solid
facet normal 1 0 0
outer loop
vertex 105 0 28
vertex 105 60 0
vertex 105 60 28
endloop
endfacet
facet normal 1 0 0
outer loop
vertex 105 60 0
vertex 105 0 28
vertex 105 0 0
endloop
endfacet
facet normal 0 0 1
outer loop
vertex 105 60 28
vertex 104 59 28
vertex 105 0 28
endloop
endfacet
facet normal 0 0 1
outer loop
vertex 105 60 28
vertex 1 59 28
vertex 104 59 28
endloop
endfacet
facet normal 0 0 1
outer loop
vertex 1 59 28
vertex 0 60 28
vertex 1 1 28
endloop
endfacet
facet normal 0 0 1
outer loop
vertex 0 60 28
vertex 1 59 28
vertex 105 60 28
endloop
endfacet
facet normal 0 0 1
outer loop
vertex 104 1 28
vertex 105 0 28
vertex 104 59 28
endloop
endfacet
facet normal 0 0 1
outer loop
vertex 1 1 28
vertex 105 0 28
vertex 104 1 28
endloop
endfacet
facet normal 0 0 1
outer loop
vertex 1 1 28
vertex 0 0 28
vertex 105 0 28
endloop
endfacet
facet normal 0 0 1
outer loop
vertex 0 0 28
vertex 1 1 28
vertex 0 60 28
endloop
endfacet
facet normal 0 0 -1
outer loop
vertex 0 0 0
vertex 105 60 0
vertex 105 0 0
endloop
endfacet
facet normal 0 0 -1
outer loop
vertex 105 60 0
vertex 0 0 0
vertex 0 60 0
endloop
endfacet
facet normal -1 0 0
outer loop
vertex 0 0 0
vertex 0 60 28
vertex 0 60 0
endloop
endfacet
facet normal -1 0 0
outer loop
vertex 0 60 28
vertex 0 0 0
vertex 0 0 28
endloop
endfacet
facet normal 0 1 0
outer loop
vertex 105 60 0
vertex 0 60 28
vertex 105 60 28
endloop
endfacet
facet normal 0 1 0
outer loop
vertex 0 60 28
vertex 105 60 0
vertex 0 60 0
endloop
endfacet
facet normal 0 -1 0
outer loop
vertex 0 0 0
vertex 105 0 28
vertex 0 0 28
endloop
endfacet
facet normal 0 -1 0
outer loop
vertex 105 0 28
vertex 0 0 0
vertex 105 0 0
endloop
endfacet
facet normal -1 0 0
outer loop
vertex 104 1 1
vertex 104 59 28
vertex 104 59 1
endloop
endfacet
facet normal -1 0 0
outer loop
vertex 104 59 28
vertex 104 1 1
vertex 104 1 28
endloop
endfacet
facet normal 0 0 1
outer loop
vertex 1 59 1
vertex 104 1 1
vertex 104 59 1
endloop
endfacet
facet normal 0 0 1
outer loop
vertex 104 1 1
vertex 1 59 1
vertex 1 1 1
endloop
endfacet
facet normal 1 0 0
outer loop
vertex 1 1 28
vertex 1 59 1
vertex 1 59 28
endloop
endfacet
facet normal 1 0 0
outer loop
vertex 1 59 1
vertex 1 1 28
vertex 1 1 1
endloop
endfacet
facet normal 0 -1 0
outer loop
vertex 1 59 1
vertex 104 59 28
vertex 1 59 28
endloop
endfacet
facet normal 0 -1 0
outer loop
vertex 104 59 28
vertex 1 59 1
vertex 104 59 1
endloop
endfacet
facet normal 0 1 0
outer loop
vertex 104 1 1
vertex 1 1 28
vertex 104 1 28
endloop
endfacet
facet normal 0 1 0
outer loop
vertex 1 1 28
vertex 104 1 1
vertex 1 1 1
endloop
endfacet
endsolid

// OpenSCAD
include <boardgame_insert_toolkit_lib.2.scad>;

// determines whether lids are output.
g_b_print_lid = true;

// determines whether boxes are output.
g_b_print_box = true; 

// Focus on one box
g_isolated_print_box = ""; 

// Used to visualize how all of the boxes fit together. 
g_b_visualization = false;          
        
// this is the outer wall thickness. 
//Default = 1.5mm
g_wall_thickness = 1.0;

// The tolerance value is extra space put between planes of the lid and box that fit together.
// Increase the tolerance to loosen the fit and decrease it to tighten it.
//
// Note that the tolerance is applied exclusively to the lid.
// So if the lid is too tight or too loose, change this value ( up for looser fit, down for tighter fit ) and 
// you only need to reprint the lid.
// 
// The exception is the stackable box, where the bottom of the box is the lid of the box below,
// in which case the tolerance also affects that box bottom.
//
g_tolerance = 0.15;

// This adjusts the position of the lid detents downward. 
// The larger the value, the bigger the gap between the lid and the box.
g_tolerance_detents_pos = 0.1;

aw_size_x = 105.0;
aw_size_y = 60.0;
aw_size_z = 28.0;


data =
  [
    [
      "simple box",
      [
        [ BOX_SIZE_XYZ, [aw_size_x, aw_size_y, aw_size_z] ],
        [ BOX_NO_LID_B, t],
        [
          BOX_COMPONENT,
          [
            [
              CMP_COMPARTMENT_SIZE_XYZ,
              [
                (aw_size_x - 2.0),
                (aw_size_y - 2.0),
                aw_size_z - g_wall_thickness
              ]
            ],
            [ CMP_NUM_COMPARTMENTS_XY, [1, 1] ],
            //[ CMP_FILLET_RADIUS, 5.0 ],
            [ POSITION_XY, [0, 0] ],
            [ CMP_CUTOUT_SIDES_4B,   [f,f,f,f]],
            //[ CMP_CUTOUT_DEPTH_PCT,  20],
            //[ CMP_CUTOUT_WIDTH_PCT,  50],
            //[ CMP_CUTOUT_HEIGHT_PCT, 100], 
            //[ CMP_SHAPE_ROTATED_B, t ],
            //[ CMP_SHAPE, FILLET ],
            //[ CMP_FILLET_RADIUS, 5.0 ],
          ]
        ],
      ]
    ]
  ];

MakeAll();
